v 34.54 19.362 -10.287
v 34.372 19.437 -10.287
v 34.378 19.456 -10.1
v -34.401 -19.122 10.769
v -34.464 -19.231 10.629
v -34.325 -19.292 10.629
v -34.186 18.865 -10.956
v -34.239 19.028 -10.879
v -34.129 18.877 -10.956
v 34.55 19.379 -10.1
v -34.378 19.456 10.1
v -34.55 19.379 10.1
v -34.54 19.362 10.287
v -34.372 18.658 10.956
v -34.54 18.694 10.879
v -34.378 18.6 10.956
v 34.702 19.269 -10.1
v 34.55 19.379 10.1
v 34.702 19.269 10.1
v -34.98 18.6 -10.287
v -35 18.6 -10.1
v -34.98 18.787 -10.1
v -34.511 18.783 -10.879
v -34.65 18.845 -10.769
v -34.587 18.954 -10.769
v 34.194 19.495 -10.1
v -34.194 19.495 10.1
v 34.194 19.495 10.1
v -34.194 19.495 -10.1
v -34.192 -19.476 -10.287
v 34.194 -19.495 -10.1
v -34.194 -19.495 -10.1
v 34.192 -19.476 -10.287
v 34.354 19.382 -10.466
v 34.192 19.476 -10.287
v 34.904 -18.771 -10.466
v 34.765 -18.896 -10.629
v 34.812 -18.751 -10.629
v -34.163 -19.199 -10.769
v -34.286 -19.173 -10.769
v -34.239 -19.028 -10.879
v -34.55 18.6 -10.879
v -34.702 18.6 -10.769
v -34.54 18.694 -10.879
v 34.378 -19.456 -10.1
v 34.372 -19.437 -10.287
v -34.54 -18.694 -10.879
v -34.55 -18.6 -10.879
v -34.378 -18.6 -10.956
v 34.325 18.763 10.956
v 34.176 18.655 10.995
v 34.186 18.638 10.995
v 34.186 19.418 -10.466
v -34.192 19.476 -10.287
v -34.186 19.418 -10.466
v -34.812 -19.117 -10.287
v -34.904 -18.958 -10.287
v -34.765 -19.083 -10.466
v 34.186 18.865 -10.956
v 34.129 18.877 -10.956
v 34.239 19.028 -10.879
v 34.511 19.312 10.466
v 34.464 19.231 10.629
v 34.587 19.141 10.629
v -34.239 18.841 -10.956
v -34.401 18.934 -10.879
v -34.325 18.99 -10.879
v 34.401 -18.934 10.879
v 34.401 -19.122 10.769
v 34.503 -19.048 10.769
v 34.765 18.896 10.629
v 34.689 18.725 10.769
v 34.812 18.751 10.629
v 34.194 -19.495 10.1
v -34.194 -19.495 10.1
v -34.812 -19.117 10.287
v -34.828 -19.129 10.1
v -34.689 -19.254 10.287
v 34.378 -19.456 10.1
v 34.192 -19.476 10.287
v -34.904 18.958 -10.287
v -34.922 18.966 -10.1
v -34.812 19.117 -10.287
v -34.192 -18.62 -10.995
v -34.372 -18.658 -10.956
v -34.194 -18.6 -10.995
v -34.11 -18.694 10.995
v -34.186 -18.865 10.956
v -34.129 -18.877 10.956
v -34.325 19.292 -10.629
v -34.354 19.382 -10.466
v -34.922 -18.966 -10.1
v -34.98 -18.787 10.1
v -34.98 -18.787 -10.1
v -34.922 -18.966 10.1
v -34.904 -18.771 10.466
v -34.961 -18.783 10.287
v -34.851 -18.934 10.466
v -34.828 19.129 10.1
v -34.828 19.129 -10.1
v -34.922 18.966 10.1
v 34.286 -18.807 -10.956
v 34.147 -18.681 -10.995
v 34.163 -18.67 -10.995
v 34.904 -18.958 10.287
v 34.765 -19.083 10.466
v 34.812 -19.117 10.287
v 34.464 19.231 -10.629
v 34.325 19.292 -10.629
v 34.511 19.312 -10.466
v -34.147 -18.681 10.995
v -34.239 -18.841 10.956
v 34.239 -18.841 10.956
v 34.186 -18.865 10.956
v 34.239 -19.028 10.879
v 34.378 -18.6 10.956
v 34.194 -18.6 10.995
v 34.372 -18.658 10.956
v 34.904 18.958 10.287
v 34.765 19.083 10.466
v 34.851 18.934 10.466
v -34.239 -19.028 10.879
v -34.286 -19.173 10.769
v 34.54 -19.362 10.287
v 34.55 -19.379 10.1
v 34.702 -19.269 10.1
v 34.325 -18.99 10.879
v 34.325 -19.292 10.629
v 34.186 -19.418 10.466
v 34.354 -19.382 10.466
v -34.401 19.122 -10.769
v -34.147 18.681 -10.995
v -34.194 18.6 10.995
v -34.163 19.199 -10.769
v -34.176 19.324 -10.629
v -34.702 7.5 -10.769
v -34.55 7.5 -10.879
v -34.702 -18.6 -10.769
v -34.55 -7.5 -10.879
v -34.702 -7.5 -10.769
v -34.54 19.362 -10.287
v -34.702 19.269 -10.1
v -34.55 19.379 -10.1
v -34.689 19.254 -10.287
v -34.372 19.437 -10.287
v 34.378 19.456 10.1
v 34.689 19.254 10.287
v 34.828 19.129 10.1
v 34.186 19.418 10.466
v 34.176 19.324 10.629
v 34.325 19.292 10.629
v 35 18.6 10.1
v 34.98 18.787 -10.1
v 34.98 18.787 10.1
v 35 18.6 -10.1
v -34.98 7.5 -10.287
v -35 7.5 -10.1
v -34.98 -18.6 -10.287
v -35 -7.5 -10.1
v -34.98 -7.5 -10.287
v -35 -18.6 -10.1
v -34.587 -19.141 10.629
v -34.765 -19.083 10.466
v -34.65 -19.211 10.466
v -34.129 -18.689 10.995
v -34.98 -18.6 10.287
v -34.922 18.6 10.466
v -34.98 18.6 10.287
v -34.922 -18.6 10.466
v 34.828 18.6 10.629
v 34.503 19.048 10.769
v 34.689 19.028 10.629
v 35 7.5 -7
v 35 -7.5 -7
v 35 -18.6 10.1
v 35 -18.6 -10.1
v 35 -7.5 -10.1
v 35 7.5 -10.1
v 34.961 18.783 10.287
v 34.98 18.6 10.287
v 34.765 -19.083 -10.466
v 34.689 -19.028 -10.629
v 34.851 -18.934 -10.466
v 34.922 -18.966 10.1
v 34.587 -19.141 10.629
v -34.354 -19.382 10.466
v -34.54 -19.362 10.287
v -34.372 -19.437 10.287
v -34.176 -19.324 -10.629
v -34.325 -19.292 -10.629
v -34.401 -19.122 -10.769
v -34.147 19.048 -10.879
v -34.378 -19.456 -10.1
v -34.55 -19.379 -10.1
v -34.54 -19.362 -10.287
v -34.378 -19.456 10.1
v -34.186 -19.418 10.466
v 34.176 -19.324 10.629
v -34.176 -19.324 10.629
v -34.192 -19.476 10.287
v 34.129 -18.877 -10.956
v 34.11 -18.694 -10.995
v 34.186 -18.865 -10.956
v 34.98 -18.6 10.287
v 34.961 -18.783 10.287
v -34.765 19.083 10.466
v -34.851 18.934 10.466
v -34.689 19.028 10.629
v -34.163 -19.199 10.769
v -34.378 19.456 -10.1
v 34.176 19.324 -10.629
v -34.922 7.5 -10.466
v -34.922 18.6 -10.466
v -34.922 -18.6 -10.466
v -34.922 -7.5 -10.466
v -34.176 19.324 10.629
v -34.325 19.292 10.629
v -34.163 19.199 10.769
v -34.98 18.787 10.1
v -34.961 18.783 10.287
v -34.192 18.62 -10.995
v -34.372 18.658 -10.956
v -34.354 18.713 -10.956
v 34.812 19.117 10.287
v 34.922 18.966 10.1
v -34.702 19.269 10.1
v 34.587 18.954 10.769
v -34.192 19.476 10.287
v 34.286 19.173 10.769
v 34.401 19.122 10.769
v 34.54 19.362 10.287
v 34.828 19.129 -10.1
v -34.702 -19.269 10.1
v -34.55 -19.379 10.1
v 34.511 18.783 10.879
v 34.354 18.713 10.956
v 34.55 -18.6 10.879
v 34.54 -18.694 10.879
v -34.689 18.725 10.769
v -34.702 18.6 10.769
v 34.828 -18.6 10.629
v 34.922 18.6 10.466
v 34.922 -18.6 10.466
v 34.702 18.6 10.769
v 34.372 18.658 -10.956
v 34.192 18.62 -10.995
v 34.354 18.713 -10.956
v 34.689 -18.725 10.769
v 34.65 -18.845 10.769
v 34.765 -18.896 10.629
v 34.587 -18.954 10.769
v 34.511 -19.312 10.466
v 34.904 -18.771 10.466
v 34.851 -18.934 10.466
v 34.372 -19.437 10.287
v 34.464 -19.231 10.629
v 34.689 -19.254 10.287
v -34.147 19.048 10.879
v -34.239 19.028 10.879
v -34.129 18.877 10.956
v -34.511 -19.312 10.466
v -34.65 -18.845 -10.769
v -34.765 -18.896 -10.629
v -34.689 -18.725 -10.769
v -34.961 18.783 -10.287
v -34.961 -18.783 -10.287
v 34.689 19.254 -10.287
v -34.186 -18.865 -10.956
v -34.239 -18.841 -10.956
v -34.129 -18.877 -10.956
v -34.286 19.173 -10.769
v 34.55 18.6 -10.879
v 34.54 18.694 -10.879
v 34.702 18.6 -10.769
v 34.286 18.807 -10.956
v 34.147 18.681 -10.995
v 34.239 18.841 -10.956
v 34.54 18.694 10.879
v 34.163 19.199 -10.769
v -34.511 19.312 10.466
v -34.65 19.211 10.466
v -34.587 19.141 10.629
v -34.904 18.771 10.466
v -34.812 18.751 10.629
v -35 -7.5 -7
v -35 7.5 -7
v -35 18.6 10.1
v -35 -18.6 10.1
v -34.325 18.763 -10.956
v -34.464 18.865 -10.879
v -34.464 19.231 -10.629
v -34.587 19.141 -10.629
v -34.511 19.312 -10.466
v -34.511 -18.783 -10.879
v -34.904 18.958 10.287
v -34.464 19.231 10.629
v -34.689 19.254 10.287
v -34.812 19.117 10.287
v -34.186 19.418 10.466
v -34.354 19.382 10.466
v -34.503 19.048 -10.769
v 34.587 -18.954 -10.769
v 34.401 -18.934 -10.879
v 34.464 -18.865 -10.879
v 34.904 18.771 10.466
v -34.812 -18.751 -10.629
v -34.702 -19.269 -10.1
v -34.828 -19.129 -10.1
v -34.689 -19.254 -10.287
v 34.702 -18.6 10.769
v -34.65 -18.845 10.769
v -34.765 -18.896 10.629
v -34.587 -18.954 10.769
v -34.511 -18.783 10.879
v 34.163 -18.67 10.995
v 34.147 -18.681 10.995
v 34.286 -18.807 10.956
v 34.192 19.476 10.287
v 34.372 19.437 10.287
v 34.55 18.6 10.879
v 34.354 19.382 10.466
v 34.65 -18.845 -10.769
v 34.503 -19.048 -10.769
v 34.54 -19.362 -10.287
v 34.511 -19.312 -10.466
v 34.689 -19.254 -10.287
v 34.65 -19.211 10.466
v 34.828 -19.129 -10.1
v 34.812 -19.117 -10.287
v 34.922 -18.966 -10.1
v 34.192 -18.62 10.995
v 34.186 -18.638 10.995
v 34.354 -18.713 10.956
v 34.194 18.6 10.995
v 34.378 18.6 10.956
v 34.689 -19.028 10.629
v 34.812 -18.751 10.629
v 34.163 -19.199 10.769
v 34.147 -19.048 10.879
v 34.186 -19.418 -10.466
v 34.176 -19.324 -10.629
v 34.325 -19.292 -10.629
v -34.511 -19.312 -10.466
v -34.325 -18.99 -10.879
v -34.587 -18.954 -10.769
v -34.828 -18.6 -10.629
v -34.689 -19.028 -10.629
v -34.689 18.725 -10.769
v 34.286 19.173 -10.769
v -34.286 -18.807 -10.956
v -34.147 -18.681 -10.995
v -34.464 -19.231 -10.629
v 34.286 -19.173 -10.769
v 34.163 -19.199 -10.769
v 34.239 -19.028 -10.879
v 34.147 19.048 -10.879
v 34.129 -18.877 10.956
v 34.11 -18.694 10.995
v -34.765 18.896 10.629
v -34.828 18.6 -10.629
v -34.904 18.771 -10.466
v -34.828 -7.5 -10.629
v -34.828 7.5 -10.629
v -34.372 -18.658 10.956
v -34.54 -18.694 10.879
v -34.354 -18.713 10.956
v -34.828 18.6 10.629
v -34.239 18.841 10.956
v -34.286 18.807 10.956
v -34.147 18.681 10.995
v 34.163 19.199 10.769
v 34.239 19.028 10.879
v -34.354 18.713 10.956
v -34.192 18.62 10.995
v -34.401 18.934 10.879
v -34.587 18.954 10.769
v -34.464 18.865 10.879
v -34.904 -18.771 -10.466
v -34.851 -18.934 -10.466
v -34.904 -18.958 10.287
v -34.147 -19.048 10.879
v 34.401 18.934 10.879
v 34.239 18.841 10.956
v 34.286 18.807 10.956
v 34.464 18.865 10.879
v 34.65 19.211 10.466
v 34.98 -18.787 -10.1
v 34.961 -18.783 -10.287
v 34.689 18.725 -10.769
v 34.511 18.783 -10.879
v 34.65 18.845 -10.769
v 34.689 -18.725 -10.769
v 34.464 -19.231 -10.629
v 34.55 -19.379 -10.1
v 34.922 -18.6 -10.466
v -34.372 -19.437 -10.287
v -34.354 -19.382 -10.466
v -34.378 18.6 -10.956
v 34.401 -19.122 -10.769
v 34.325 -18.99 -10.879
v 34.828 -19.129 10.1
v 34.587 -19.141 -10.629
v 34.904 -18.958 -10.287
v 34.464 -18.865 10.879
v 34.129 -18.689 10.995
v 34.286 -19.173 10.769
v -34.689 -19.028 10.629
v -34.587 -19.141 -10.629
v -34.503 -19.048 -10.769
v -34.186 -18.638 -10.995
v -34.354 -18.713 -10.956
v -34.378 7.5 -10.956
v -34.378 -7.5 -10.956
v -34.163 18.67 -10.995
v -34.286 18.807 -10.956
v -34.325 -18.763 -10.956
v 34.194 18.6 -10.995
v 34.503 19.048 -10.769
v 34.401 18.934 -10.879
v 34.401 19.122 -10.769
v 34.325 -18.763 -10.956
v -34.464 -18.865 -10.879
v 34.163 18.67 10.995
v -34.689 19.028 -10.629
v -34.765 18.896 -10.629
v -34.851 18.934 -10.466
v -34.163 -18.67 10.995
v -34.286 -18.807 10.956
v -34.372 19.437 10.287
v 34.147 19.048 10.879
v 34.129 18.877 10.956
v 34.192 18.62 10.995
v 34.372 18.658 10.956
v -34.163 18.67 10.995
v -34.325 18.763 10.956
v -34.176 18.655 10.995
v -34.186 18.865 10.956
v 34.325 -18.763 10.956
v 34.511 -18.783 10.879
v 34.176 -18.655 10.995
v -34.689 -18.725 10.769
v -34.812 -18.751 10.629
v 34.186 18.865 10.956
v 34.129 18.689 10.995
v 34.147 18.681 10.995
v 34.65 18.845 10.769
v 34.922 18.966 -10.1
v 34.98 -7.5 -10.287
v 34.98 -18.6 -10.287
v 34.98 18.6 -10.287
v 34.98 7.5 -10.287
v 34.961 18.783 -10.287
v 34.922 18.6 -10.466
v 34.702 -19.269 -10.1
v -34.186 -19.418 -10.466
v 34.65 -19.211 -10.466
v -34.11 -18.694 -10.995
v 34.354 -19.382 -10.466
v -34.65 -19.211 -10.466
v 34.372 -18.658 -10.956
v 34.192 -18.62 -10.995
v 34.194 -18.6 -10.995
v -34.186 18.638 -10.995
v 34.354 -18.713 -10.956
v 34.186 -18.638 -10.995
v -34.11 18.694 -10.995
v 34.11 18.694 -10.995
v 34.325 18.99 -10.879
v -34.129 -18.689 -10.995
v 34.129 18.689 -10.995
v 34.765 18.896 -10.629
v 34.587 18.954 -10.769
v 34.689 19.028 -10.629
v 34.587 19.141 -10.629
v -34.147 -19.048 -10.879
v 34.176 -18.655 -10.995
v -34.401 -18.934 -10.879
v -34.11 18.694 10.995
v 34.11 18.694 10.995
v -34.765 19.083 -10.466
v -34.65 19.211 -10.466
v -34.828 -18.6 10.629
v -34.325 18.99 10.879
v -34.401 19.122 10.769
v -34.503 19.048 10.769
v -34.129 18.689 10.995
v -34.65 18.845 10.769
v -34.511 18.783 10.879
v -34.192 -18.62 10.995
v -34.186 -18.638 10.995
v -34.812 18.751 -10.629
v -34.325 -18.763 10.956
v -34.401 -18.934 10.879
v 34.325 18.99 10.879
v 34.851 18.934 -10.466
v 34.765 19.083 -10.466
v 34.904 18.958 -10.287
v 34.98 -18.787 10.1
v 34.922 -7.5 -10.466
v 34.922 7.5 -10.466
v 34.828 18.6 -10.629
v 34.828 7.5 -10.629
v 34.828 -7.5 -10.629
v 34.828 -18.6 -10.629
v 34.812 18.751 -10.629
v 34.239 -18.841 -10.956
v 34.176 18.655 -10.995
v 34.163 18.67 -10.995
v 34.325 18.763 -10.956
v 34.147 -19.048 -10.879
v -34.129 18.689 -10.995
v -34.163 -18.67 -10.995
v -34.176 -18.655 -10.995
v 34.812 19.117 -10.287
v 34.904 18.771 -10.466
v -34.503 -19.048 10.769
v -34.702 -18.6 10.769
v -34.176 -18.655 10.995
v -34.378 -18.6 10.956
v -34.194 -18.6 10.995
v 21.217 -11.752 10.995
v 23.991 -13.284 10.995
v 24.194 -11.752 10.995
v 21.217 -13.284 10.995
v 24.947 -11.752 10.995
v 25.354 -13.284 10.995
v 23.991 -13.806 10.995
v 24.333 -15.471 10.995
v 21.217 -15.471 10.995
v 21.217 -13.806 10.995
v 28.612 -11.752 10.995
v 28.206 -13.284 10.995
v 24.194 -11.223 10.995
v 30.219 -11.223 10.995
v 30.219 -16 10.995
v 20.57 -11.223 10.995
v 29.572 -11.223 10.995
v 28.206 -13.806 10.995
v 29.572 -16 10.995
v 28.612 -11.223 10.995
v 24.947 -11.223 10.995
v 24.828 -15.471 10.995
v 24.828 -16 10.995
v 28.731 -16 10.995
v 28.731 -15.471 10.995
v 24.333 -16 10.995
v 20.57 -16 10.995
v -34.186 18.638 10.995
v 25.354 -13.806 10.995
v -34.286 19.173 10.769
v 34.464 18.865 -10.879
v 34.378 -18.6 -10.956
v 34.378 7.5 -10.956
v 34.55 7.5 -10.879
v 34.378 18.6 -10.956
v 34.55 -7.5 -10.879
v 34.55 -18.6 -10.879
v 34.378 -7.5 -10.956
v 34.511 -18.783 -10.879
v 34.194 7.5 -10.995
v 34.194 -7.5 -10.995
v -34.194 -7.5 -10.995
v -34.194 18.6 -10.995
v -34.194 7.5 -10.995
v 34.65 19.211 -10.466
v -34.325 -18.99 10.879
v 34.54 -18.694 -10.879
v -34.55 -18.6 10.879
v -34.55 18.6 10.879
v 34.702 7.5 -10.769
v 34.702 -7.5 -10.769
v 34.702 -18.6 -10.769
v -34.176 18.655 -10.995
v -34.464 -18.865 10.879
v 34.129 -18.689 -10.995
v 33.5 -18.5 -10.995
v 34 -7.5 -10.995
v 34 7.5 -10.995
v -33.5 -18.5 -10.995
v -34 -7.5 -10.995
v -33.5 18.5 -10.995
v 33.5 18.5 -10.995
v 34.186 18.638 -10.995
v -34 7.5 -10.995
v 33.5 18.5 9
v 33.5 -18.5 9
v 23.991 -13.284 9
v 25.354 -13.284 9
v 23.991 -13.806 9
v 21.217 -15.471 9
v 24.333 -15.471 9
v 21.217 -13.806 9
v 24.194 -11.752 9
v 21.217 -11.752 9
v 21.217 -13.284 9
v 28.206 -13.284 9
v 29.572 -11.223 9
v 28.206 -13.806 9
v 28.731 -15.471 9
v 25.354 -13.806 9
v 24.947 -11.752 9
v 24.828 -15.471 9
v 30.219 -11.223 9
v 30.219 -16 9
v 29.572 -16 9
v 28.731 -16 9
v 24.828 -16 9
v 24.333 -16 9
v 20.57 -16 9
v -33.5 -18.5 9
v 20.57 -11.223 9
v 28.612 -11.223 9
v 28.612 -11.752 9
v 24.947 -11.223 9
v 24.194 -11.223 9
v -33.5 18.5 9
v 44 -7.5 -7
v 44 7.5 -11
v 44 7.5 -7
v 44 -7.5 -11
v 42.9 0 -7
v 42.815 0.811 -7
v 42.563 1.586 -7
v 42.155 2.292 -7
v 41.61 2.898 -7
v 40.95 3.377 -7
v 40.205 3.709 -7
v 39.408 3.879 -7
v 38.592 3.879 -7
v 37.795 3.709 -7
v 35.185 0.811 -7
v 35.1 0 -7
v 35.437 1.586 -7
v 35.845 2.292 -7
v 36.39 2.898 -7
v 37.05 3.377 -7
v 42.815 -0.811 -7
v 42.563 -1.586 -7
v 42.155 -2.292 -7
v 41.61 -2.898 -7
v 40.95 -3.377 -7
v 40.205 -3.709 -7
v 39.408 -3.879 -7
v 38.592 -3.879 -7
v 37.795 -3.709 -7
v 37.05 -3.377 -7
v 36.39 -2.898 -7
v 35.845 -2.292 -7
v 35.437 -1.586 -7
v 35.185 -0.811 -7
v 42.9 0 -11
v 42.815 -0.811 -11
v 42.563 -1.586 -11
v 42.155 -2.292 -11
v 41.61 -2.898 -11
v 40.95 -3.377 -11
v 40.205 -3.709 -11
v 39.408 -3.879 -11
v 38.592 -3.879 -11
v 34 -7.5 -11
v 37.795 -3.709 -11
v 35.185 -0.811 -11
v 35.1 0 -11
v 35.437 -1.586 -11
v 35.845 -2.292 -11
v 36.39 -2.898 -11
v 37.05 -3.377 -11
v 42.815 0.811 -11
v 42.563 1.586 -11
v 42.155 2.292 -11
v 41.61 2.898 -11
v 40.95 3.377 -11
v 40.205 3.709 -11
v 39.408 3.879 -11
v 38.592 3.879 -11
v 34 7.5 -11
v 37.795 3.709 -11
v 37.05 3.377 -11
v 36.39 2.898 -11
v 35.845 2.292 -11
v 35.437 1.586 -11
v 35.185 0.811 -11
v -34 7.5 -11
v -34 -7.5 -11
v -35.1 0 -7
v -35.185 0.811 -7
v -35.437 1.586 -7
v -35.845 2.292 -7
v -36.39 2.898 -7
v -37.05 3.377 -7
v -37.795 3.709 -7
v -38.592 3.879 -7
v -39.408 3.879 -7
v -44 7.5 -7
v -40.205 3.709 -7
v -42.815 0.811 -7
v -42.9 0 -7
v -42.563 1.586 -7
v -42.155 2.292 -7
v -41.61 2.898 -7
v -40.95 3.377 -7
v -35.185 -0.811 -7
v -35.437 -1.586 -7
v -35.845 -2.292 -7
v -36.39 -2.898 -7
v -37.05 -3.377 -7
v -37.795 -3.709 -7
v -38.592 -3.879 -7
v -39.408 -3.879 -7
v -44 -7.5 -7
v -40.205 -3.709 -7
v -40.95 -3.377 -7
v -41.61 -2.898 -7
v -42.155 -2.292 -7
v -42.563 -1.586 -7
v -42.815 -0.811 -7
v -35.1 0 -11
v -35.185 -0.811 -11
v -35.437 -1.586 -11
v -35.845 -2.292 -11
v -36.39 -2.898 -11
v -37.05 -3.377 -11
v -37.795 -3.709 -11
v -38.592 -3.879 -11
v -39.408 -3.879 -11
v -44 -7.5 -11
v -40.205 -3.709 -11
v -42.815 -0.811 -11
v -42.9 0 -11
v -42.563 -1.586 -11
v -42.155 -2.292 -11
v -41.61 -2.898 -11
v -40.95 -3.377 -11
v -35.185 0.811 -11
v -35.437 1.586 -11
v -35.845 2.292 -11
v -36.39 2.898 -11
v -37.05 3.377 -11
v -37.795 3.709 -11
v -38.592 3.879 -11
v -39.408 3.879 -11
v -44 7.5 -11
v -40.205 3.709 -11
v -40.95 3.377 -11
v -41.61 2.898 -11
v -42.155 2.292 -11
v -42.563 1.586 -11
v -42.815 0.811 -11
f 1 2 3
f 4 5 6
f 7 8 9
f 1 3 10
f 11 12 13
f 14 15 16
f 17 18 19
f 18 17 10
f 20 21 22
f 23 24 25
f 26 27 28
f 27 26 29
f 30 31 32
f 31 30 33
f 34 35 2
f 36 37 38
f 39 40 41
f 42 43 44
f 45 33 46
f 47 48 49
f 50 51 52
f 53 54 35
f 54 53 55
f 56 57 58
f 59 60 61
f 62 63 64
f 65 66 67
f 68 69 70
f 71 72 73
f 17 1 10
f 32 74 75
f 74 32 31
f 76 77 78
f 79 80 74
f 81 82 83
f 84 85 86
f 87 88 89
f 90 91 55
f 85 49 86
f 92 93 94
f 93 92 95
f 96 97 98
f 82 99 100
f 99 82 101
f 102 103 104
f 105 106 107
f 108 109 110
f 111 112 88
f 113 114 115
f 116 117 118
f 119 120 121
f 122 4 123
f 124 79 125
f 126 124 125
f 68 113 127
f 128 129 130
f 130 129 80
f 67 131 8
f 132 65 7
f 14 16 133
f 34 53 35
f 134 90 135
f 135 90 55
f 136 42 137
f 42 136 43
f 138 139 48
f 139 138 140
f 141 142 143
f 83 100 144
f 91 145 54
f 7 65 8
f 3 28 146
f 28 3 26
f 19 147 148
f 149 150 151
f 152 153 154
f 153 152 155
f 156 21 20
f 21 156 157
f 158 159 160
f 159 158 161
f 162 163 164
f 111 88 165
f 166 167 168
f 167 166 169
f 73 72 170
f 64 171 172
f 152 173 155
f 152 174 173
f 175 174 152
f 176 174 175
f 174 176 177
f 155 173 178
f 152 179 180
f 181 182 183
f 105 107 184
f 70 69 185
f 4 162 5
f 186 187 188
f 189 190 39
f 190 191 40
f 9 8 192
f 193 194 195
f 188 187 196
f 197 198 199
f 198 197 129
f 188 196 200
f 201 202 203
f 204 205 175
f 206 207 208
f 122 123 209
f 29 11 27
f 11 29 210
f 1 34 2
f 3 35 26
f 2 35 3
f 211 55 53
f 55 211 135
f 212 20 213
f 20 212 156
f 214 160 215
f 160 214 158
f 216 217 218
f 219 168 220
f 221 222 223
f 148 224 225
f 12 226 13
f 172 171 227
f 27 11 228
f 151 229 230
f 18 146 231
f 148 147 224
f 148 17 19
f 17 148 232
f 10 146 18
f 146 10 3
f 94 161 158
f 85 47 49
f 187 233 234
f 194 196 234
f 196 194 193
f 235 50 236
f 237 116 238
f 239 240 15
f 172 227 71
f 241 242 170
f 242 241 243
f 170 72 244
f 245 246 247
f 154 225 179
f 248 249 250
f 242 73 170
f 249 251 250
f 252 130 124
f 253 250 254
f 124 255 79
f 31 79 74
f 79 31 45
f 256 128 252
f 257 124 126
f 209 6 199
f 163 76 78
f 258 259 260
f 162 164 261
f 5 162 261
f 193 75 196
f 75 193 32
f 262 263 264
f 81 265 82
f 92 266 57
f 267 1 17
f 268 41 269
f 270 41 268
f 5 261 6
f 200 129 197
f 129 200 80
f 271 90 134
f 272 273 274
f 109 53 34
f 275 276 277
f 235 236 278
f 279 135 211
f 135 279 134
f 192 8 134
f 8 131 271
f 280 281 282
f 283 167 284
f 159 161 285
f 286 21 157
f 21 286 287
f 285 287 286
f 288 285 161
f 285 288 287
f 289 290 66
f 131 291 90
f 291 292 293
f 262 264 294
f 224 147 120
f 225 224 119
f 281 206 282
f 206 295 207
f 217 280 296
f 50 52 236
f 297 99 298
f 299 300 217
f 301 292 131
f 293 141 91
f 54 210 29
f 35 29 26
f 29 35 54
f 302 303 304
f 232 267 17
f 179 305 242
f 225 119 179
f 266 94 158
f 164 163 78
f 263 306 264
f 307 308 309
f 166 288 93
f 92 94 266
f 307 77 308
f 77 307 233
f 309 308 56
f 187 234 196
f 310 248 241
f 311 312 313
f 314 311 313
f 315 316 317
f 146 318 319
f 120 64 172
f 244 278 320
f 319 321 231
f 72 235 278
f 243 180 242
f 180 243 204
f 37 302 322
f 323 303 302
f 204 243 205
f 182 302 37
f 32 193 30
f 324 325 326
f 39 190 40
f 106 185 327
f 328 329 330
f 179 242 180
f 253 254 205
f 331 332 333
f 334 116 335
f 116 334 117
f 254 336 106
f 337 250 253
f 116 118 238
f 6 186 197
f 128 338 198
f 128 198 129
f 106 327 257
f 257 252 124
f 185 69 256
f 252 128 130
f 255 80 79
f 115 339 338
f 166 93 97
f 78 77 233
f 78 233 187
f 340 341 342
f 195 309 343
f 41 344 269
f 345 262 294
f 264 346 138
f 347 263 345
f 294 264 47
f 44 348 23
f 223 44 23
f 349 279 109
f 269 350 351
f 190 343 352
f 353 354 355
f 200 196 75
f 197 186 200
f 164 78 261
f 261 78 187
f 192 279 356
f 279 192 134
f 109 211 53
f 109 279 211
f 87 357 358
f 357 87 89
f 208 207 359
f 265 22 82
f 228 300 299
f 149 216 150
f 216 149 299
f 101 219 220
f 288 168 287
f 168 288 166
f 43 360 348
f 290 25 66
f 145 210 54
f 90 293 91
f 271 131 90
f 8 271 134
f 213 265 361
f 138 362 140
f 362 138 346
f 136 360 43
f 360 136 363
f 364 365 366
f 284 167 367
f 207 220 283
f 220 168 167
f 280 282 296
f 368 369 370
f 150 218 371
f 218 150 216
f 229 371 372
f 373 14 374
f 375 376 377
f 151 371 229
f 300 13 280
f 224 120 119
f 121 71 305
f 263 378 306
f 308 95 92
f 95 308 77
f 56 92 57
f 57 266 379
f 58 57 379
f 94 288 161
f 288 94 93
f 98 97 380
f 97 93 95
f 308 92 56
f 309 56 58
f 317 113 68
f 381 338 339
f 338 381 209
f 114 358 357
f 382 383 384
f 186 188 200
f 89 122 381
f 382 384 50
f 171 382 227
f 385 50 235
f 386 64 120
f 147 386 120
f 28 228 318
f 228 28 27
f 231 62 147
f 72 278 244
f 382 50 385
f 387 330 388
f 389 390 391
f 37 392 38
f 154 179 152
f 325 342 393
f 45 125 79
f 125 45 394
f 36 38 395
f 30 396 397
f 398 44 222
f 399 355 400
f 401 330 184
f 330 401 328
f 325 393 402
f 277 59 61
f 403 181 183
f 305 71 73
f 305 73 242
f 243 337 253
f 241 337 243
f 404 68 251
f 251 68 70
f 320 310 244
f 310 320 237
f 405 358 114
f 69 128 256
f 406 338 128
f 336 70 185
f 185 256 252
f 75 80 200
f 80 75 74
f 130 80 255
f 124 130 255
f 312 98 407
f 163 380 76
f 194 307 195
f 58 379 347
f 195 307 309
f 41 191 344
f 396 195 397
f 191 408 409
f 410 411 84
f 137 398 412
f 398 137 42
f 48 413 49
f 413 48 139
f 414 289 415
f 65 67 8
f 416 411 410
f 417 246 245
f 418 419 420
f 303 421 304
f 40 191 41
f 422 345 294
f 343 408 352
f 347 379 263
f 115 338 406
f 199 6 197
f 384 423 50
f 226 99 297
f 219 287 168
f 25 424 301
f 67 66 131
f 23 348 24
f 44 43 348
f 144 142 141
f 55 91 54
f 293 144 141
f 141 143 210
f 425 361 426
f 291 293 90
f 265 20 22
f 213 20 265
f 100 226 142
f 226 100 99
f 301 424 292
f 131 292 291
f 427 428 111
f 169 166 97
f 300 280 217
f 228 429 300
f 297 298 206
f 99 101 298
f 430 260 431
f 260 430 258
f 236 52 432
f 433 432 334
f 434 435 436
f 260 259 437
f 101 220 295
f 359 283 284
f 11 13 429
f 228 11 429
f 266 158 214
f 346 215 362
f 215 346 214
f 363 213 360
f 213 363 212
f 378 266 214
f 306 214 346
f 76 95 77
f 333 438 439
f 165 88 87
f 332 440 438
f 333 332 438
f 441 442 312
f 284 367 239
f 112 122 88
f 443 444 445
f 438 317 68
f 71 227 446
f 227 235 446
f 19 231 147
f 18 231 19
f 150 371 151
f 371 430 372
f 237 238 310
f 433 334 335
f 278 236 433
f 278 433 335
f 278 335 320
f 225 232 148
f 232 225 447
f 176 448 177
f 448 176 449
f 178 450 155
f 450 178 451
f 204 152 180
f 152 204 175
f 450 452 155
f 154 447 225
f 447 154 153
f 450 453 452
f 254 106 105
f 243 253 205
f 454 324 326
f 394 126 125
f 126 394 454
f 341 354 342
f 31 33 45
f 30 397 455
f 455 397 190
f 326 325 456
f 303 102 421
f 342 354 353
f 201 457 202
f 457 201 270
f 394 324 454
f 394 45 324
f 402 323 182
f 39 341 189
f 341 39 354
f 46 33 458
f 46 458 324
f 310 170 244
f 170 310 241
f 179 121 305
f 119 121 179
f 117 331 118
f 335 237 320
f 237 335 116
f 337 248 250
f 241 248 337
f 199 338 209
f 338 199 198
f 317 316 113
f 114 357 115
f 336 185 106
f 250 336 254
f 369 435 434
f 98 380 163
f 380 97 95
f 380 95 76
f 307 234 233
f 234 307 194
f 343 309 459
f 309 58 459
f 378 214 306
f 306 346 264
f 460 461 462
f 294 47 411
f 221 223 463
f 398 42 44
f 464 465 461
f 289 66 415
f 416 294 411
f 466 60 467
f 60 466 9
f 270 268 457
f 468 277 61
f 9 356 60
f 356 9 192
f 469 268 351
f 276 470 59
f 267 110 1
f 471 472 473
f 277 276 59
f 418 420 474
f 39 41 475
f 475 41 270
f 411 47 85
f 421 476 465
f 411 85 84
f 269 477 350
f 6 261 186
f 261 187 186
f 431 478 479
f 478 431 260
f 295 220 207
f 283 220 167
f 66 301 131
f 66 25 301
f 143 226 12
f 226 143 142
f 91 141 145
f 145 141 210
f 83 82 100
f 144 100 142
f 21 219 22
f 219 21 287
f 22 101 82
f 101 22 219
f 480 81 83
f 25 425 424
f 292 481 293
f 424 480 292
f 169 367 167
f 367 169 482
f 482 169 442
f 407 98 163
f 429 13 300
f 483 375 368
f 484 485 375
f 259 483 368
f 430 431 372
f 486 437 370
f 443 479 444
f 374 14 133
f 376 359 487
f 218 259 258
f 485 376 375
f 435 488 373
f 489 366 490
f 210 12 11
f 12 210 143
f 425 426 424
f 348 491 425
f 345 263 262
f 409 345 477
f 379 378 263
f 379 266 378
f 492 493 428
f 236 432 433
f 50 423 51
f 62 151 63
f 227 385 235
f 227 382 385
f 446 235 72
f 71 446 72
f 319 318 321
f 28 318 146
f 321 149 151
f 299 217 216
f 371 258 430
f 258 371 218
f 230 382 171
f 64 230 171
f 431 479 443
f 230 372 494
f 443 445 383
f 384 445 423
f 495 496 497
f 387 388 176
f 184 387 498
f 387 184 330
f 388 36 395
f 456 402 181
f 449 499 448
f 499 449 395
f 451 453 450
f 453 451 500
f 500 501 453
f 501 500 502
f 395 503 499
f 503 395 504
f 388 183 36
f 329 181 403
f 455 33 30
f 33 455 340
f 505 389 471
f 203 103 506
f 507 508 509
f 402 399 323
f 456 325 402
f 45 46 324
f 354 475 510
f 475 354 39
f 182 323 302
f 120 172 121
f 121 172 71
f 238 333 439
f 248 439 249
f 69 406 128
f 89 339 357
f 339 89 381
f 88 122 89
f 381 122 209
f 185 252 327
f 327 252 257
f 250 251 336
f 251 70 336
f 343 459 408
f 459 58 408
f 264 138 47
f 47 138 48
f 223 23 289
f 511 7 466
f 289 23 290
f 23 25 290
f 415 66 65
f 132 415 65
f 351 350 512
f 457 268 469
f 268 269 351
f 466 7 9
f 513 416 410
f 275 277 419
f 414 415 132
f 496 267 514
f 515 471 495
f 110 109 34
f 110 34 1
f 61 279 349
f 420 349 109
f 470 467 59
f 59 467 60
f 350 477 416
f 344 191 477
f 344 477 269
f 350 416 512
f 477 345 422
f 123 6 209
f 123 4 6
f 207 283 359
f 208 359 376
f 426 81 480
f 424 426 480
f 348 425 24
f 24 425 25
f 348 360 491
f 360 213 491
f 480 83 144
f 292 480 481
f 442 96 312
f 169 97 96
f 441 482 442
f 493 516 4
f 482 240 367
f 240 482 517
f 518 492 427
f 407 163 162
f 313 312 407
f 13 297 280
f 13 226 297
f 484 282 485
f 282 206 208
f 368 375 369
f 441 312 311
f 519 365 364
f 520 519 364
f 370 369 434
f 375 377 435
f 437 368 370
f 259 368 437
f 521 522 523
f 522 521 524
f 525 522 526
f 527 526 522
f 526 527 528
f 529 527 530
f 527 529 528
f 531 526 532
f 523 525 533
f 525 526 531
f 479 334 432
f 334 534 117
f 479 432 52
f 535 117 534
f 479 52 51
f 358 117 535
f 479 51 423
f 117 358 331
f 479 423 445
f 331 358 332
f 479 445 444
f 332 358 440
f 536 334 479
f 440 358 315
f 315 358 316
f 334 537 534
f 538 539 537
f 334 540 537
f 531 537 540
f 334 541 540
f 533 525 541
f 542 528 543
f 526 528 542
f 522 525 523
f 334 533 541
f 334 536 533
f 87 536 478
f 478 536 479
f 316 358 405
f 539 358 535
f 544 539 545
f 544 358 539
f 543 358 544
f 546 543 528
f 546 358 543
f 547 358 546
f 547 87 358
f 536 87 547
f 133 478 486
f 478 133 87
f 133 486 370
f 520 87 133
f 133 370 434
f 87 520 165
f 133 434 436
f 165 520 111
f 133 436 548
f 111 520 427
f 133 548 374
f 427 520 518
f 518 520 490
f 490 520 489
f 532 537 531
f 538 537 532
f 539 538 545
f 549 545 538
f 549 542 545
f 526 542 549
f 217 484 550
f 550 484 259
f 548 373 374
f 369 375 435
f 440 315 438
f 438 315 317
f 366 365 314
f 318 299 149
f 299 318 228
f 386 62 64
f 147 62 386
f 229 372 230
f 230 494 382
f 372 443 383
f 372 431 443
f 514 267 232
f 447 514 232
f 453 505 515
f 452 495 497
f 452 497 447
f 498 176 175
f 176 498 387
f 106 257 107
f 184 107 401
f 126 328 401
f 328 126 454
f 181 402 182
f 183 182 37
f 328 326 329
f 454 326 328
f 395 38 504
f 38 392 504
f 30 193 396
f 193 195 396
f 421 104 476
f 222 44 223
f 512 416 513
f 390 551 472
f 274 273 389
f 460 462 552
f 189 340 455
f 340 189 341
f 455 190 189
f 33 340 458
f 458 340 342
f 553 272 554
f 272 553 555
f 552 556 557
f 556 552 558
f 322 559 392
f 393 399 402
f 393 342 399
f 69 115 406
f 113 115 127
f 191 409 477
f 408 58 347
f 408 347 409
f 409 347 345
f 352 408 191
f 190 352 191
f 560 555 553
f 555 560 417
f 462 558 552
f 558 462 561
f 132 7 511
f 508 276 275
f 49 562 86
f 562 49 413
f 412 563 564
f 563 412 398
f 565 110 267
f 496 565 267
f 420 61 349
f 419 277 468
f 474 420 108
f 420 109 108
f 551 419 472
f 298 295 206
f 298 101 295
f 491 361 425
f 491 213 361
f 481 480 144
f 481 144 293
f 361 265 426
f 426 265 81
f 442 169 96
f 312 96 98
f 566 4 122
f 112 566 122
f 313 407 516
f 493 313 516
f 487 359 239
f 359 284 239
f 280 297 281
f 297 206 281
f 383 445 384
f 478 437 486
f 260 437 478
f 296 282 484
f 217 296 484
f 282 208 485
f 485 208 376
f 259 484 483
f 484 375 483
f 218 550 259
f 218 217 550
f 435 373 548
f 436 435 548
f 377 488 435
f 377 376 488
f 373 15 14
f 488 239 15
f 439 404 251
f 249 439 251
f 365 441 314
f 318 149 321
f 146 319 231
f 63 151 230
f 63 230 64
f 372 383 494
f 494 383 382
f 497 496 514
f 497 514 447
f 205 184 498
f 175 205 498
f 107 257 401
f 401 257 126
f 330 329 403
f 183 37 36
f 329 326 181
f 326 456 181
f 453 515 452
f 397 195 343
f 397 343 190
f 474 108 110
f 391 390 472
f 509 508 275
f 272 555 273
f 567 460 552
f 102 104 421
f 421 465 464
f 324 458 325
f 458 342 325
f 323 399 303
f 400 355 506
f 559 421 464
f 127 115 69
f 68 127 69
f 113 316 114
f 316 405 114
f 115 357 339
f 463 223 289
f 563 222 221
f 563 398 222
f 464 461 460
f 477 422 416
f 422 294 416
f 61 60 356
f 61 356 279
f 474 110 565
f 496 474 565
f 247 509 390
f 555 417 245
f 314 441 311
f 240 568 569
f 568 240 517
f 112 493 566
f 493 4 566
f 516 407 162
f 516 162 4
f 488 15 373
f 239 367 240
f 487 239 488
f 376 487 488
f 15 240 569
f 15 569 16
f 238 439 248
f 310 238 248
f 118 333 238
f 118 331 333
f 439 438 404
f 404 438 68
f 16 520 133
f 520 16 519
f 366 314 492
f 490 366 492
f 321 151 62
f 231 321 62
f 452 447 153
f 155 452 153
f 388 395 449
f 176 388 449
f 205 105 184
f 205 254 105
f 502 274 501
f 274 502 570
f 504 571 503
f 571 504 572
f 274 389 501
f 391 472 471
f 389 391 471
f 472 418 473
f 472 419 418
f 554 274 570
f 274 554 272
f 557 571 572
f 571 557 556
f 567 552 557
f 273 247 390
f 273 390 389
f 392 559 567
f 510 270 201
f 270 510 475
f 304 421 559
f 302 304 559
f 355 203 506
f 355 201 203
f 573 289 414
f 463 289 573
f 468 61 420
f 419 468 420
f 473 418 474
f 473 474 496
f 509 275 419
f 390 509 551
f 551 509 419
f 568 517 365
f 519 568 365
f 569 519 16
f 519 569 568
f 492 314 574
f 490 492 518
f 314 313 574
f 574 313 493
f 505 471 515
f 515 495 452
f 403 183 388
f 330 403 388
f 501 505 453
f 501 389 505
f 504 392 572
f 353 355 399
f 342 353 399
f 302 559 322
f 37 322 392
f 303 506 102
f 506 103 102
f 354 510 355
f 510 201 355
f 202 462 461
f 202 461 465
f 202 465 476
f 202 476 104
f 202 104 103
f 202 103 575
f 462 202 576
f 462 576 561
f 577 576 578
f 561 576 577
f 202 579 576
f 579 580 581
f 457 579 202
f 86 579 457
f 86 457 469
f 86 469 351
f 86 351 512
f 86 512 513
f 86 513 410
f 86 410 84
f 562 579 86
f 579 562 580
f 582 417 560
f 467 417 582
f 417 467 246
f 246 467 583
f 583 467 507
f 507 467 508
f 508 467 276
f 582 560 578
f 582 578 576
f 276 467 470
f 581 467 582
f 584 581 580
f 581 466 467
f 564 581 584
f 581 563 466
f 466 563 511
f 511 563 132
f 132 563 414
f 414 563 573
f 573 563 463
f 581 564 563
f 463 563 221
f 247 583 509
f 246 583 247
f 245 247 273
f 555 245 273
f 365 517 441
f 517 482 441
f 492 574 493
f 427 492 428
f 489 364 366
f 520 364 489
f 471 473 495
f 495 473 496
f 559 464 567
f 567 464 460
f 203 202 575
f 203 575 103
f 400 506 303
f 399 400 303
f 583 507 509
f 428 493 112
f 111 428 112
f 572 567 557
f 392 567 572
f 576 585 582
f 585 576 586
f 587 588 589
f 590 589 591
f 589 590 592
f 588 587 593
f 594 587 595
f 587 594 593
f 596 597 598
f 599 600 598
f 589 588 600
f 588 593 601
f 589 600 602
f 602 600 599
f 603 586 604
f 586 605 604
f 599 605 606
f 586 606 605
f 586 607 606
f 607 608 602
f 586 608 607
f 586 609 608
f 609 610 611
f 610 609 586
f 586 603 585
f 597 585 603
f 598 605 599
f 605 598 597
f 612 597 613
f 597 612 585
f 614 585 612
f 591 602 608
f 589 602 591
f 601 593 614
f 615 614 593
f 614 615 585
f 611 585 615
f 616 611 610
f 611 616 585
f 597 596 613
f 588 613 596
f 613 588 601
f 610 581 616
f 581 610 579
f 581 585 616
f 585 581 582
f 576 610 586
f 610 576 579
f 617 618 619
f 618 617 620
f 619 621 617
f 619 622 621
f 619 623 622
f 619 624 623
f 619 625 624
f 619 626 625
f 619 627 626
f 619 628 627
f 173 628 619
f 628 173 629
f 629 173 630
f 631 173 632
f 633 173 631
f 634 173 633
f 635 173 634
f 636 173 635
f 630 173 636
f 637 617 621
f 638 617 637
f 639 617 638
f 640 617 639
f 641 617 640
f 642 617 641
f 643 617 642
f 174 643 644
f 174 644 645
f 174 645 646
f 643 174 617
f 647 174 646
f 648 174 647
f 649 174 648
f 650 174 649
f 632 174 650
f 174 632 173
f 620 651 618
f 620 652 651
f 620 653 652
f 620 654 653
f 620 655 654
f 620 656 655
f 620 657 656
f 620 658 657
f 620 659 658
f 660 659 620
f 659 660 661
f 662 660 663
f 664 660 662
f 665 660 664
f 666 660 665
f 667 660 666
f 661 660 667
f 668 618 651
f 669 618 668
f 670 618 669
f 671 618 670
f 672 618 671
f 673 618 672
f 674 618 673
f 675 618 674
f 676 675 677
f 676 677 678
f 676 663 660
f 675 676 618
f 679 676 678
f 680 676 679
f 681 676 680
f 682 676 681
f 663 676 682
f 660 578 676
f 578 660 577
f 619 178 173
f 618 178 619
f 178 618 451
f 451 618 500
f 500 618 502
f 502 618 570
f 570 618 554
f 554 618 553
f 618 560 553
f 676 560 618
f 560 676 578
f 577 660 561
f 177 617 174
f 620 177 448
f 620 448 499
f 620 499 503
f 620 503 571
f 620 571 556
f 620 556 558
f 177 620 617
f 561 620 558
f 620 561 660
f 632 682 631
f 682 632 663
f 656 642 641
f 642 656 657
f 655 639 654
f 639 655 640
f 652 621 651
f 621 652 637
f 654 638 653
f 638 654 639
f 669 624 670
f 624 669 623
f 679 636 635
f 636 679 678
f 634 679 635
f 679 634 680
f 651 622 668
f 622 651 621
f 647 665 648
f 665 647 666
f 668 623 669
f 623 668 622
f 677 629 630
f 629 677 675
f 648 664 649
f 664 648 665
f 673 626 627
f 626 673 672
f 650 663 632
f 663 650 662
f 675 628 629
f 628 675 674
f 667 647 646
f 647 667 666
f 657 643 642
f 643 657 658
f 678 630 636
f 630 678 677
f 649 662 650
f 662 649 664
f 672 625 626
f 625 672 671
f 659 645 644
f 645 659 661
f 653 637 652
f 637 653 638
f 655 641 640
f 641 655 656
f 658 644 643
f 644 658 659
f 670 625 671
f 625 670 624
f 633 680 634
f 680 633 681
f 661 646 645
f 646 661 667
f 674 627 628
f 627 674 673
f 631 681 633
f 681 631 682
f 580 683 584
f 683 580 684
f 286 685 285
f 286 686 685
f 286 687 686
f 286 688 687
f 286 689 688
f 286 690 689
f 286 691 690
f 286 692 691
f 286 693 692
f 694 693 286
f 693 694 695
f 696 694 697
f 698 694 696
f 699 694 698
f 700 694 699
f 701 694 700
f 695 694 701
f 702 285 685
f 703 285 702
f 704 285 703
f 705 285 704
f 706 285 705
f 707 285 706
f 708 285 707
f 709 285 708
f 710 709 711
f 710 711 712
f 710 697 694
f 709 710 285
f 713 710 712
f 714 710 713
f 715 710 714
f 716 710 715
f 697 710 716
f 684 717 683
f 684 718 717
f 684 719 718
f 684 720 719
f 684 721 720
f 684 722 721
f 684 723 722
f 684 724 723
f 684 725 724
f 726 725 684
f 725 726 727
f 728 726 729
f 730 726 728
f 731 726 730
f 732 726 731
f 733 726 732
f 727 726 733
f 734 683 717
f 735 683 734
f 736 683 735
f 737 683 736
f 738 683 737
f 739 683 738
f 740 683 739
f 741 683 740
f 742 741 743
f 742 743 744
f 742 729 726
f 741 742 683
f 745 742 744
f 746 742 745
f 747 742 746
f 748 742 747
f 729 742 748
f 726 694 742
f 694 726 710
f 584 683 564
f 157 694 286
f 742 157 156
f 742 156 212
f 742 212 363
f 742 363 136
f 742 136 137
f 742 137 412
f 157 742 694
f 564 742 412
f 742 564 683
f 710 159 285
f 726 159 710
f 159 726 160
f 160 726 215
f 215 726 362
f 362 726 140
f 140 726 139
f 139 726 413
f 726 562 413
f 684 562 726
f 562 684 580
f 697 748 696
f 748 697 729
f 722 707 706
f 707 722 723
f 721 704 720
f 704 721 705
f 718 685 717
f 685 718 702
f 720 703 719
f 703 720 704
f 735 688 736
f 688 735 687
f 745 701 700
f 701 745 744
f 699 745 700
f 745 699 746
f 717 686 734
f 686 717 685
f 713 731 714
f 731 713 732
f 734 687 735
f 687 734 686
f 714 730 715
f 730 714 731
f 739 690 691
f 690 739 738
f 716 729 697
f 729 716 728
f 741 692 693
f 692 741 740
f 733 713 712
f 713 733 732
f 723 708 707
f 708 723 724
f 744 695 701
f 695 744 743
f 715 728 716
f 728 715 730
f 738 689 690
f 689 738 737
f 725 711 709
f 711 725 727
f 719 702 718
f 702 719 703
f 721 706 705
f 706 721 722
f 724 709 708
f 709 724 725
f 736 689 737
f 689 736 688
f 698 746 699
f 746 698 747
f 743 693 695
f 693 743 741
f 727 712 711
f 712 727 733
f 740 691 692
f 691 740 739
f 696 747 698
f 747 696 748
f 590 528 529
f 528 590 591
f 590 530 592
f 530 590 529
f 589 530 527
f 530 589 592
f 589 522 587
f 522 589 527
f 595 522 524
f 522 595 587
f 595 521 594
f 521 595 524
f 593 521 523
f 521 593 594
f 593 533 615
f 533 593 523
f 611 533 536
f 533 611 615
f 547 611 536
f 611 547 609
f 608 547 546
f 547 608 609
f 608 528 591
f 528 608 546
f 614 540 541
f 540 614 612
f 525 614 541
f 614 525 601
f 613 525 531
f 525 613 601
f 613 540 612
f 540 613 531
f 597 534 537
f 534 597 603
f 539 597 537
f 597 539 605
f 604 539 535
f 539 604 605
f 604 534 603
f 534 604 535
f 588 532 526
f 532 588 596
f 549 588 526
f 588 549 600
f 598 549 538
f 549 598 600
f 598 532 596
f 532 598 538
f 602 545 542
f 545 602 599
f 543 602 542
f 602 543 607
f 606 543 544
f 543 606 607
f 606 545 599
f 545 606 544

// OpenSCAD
// Higher definition curves
$fs = 0.01;

module roundedcube(size = [1, 1, 1], center = false, radius = 0.5, apply_to = "all") {
	// If single value, convert to [x, y, z] vector
	size = (size[0] == undef) ? [size, size, size] : size;

	translate_min = radius;
	translate_xmax = size[0] - radius;
	translate_ymax = size[1] - radius;
	translate_zmax = size[2] - radius;

	diameter = radius * 2;

	module build_point(type = "sphere", rotate = [0, 0, 0]) {
		if (type == "sphere") {
			sphere(r = radius);
		} else if (type == "cylinder") {
			rotate(a = rotate)
			cylinder(h = diameter, r = radius, center = true);
		}
	}

	obj_translate = (center == false) ?
		[0, 0, 0] : [
			-(size[0] / 2),
			-(size[1] / 2),
			-(size[2] / 2)
		];

	translate(v = obj_translate) {
		hull() {
			for (translate_x = [translate_min, translate_xmax]) {
				x_at = (translate_x == translate_min) ? "min" : "max";
				for (translate_y = [translate_min, translate_ymax]) {
					y_at = (translate_y == translate_min) ? "min" : "max";
					for (translate_z = [translate_min, translate_zmax]) {
						z_at = (translate_z == translate_min) ? "min" : "max";

						translate(v = [translate_x, translate_y, translate_z])
						if (
							(apply_to == "all") ||
							(apply_to == "xmin" && x_at == "min") || (apply_to == "xmax" && x_at == "max") ||
							(apply_to == "ymin" && y_at == "min") || (apply_to == "ymax" && y_at == "max") ||
							(apply_to == "zmin" && z_at == "min") || (apply_to == "zmax" && z_at == "max")
						) {
							build_point("sphere");
						} else {
							rotate = 
								(apply_to == "xmin" || apply_to == "xmax" || apply_to == "x") ? [0, 90, 0] : (
								(apply_to == "ymin" || apply_to == "ymax" || apply_to == "y") ? [90, 90, 0] :
								[0, 0, 0]
							);
							build_point("cylinder", rotate);
						}
					}
				}
			}
		}
	}
}

color("cyan");
difference(){

    union()
    {
        difference() {
            //cube([70,39,22], center=true );
            roundedcube([70,39,22], true, 0.9,"all");
            translate([0,0,-6]){
                cube([67,37,30], center=true );
            }
        }
        
        difference(){
            translate([39,0,-9]){
                cube([10,15,4], center=true );
            }
            translate([39,0,-9]){
                cylinder(6,3.9,3.9,center=true);
            }

        }

        difference(){
            translate([-39,0,-9]){
                cube([10,15,4], center=true );
            }
            translate([-39,0,-9]){
                cylinder(6,3.9,3.9,center=true);
            }

        }
       
    }
    
    translate([20,-16,8.9]){
            
            linear_extrude(6)
             color("red")
            text("ΕΞΙ",size=5);
            
    }

}
